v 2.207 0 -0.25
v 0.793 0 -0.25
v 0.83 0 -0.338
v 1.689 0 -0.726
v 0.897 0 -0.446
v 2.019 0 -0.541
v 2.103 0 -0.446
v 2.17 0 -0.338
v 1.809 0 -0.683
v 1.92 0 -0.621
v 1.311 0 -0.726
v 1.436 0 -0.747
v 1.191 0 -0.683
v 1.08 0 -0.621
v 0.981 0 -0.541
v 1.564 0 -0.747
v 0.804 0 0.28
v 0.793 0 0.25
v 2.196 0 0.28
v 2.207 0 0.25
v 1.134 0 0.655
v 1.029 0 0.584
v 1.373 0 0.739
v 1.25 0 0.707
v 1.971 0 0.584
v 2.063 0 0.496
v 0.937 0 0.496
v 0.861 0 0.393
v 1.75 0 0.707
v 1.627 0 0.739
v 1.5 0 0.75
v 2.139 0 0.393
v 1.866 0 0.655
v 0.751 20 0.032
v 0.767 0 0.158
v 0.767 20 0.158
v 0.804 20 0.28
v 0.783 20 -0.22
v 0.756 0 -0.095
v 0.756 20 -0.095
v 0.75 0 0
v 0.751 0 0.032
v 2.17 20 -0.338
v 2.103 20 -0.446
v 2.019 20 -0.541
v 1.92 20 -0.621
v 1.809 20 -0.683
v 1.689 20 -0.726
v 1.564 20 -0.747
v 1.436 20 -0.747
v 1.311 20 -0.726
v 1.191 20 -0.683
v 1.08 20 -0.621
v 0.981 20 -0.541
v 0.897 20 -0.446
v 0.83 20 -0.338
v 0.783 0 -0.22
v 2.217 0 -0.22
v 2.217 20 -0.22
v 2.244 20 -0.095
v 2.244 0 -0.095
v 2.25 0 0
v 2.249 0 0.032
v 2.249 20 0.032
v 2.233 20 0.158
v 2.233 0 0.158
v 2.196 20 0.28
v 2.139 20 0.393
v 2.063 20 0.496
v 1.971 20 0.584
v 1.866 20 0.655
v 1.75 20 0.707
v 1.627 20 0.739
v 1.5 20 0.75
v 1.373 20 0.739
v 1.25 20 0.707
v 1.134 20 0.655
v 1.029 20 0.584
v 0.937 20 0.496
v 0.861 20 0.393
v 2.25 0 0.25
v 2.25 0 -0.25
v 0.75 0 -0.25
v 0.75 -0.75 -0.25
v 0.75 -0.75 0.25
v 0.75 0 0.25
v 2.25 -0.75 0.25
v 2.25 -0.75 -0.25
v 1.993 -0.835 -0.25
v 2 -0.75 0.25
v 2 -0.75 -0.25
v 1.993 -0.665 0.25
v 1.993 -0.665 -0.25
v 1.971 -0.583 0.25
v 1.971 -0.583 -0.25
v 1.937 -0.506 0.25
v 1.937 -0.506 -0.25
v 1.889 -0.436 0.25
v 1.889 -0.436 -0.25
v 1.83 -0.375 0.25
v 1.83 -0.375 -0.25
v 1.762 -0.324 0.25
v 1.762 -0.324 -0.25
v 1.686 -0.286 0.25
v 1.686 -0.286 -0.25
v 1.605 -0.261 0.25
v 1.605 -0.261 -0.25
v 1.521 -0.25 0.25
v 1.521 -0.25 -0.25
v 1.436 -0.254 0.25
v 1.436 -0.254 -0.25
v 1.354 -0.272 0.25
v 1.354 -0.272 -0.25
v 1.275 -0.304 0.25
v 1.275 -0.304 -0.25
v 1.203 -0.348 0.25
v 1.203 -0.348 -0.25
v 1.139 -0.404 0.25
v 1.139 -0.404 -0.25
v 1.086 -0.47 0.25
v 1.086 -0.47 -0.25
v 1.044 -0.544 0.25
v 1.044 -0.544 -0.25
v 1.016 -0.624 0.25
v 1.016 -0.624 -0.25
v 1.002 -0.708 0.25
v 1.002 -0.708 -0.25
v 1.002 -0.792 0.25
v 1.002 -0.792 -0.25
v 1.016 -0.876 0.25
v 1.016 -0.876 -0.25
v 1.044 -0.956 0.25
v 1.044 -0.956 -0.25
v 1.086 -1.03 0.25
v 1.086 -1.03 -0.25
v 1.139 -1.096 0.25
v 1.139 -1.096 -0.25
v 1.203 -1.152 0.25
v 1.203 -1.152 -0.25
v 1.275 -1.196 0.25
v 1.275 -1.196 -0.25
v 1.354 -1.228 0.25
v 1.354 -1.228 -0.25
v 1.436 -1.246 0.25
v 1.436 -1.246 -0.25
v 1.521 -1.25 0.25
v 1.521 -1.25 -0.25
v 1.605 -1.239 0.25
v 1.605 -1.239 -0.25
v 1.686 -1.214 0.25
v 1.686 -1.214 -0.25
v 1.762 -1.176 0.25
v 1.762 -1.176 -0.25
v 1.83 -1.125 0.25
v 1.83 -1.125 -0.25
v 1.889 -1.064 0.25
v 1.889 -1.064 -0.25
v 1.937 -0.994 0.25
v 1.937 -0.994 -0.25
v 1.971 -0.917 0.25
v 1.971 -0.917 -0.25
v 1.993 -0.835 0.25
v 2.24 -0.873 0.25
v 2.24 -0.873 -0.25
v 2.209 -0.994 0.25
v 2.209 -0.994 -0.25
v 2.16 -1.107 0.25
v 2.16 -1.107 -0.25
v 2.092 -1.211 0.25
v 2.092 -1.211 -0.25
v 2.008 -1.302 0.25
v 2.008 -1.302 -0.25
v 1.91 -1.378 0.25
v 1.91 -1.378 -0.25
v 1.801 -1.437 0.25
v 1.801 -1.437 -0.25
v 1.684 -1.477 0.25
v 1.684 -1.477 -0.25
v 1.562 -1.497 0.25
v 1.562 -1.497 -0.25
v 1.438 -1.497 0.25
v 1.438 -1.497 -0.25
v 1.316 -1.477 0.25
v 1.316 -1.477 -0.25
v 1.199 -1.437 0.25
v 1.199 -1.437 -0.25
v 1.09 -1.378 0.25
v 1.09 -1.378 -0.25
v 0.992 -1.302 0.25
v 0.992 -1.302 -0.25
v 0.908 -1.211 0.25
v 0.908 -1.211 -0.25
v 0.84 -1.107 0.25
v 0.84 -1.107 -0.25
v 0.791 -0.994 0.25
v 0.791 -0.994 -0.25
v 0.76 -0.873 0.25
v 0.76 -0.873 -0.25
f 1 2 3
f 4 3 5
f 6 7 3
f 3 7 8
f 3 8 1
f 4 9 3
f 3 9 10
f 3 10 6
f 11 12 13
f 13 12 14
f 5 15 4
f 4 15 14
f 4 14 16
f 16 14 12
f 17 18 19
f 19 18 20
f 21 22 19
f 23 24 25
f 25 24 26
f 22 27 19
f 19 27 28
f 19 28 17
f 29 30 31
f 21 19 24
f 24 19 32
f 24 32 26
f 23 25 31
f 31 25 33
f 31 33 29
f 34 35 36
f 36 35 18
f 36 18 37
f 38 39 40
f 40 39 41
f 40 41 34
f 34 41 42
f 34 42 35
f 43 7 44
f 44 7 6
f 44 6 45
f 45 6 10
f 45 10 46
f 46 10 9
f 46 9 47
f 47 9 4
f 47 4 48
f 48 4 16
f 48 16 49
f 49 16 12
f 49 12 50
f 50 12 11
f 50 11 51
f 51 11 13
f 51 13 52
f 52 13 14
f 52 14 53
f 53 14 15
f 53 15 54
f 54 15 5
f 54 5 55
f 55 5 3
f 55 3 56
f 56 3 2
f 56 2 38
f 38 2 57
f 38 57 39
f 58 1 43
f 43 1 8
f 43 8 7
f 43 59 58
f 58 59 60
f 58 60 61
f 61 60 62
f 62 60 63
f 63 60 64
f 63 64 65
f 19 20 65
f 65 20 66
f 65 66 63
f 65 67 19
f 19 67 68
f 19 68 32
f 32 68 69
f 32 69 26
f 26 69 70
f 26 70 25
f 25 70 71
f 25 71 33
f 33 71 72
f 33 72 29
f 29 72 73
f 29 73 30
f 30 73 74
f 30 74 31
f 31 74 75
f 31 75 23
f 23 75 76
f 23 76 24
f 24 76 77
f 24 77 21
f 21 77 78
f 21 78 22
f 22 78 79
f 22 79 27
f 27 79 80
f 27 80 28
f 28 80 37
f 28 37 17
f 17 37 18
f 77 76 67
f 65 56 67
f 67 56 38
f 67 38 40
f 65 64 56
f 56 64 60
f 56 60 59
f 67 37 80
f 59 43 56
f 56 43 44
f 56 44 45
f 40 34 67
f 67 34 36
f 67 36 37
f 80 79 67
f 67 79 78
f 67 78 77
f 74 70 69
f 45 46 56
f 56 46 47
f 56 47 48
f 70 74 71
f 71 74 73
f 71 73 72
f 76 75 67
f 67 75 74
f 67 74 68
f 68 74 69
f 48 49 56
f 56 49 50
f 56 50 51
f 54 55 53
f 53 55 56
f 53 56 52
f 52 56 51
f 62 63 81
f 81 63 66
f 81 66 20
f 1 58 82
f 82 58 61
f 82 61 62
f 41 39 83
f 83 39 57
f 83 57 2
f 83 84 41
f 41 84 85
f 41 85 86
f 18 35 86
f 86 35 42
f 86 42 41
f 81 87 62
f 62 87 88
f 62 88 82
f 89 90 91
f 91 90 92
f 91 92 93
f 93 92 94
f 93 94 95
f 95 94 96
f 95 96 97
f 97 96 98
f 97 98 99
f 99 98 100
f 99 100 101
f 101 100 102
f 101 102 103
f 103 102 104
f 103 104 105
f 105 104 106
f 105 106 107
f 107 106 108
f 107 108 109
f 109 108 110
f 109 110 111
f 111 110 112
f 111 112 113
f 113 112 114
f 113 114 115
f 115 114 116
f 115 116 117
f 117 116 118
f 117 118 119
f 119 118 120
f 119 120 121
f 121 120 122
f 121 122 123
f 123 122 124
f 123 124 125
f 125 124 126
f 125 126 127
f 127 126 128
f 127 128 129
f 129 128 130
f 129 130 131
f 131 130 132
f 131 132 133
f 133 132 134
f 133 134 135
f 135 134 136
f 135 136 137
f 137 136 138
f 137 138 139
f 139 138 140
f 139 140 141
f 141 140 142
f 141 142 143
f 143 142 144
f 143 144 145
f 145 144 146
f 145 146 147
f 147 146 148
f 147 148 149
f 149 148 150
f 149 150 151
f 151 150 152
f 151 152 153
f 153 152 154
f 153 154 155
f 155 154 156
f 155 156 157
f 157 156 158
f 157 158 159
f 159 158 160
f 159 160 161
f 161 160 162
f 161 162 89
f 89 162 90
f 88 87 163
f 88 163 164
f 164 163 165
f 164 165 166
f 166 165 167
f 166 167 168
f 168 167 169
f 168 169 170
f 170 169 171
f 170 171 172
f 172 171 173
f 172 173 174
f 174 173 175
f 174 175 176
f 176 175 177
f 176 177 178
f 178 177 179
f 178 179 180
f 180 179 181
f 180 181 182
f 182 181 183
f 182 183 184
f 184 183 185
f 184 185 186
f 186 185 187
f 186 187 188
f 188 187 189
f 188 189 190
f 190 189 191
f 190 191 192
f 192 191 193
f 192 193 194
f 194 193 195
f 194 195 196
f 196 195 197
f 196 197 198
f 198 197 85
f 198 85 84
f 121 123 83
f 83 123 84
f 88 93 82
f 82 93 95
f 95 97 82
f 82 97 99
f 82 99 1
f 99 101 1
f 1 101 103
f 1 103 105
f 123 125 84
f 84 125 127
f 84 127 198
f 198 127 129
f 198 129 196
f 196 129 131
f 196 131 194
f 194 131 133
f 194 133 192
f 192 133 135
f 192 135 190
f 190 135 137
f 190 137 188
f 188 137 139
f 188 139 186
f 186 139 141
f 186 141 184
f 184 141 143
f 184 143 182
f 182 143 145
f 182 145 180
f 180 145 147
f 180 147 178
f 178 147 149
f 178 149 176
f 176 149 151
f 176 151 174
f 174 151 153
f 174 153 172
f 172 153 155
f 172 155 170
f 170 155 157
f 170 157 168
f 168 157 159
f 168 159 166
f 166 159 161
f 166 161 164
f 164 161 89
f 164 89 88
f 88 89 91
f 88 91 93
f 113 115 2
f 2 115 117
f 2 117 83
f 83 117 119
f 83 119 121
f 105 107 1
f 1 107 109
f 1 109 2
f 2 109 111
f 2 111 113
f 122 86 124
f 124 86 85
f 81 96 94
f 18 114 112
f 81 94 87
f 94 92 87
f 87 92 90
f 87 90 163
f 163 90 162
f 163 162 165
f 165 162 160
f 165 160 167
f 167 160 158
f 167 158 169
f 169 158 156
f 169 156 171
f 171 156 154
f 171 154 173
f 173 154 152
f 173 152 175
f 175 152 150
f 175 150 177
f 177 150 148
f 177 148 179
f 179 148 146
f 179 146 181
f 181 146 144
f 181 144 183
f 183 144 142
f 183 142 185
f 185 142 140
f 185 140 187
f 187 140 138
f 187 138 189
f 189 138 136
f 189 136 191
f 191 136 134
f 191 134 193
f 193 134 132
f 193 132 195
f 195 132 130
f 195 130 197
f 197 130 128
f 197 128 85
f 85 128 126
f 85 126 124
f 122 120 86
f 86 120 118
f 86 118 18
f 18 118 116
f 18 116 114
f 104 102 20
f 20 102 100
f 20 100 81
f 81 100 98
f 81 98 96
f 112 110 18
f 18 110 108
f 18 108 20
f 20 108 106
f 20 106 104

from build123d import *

# Parameters (mm, degrees)
SKETCH_1_W           = 0.75
SKETCH_1_H           = 20
EXTRUDE_2_DEPTH      = 0.25
EXTRUDE_2_DEPTH_BACK = 0.25
SKETCH_3_R           = 0.5


with BuildPart() as part:
    # 草圖1 → 旋轉4 (revolve)
    with BuildSketch(Plane.XY):
        with Locations((1.875, 10)):
            Rectangle(SKETCH_1_W, SKETCH_1_H)
    revolve(axis=Axis((1.5, 20, 0), (0, -1, 0)))

    # 草圖3 → 填料-伸長2 (add, two sides: drawn at the far end of the back side and taken through both)
    with BuildSketch(Plane.XY.offset(-EXTRUDE_2_DEPTH_BACK)):
        with BuildLine():
            Line((2.25, 0), (0.75, 0))
            Line((0.75, 0), (0.75, -0.75))
            ThreePointArc((0.75, -0.75), (1.5, -1.5), (2.25, -0.75))
            Line((2.25, -0.75), (2.25, 0))
        make_face()
        with Locations((1.5, -0.75)):
            Circle(SKETCH_3_R, mode=Mode.SUBTRACT)
    extrude(amount=EXTRUDE_2_DEPTH + EXTRUDE_2_DEPTH_BACK)


solid = part.part
